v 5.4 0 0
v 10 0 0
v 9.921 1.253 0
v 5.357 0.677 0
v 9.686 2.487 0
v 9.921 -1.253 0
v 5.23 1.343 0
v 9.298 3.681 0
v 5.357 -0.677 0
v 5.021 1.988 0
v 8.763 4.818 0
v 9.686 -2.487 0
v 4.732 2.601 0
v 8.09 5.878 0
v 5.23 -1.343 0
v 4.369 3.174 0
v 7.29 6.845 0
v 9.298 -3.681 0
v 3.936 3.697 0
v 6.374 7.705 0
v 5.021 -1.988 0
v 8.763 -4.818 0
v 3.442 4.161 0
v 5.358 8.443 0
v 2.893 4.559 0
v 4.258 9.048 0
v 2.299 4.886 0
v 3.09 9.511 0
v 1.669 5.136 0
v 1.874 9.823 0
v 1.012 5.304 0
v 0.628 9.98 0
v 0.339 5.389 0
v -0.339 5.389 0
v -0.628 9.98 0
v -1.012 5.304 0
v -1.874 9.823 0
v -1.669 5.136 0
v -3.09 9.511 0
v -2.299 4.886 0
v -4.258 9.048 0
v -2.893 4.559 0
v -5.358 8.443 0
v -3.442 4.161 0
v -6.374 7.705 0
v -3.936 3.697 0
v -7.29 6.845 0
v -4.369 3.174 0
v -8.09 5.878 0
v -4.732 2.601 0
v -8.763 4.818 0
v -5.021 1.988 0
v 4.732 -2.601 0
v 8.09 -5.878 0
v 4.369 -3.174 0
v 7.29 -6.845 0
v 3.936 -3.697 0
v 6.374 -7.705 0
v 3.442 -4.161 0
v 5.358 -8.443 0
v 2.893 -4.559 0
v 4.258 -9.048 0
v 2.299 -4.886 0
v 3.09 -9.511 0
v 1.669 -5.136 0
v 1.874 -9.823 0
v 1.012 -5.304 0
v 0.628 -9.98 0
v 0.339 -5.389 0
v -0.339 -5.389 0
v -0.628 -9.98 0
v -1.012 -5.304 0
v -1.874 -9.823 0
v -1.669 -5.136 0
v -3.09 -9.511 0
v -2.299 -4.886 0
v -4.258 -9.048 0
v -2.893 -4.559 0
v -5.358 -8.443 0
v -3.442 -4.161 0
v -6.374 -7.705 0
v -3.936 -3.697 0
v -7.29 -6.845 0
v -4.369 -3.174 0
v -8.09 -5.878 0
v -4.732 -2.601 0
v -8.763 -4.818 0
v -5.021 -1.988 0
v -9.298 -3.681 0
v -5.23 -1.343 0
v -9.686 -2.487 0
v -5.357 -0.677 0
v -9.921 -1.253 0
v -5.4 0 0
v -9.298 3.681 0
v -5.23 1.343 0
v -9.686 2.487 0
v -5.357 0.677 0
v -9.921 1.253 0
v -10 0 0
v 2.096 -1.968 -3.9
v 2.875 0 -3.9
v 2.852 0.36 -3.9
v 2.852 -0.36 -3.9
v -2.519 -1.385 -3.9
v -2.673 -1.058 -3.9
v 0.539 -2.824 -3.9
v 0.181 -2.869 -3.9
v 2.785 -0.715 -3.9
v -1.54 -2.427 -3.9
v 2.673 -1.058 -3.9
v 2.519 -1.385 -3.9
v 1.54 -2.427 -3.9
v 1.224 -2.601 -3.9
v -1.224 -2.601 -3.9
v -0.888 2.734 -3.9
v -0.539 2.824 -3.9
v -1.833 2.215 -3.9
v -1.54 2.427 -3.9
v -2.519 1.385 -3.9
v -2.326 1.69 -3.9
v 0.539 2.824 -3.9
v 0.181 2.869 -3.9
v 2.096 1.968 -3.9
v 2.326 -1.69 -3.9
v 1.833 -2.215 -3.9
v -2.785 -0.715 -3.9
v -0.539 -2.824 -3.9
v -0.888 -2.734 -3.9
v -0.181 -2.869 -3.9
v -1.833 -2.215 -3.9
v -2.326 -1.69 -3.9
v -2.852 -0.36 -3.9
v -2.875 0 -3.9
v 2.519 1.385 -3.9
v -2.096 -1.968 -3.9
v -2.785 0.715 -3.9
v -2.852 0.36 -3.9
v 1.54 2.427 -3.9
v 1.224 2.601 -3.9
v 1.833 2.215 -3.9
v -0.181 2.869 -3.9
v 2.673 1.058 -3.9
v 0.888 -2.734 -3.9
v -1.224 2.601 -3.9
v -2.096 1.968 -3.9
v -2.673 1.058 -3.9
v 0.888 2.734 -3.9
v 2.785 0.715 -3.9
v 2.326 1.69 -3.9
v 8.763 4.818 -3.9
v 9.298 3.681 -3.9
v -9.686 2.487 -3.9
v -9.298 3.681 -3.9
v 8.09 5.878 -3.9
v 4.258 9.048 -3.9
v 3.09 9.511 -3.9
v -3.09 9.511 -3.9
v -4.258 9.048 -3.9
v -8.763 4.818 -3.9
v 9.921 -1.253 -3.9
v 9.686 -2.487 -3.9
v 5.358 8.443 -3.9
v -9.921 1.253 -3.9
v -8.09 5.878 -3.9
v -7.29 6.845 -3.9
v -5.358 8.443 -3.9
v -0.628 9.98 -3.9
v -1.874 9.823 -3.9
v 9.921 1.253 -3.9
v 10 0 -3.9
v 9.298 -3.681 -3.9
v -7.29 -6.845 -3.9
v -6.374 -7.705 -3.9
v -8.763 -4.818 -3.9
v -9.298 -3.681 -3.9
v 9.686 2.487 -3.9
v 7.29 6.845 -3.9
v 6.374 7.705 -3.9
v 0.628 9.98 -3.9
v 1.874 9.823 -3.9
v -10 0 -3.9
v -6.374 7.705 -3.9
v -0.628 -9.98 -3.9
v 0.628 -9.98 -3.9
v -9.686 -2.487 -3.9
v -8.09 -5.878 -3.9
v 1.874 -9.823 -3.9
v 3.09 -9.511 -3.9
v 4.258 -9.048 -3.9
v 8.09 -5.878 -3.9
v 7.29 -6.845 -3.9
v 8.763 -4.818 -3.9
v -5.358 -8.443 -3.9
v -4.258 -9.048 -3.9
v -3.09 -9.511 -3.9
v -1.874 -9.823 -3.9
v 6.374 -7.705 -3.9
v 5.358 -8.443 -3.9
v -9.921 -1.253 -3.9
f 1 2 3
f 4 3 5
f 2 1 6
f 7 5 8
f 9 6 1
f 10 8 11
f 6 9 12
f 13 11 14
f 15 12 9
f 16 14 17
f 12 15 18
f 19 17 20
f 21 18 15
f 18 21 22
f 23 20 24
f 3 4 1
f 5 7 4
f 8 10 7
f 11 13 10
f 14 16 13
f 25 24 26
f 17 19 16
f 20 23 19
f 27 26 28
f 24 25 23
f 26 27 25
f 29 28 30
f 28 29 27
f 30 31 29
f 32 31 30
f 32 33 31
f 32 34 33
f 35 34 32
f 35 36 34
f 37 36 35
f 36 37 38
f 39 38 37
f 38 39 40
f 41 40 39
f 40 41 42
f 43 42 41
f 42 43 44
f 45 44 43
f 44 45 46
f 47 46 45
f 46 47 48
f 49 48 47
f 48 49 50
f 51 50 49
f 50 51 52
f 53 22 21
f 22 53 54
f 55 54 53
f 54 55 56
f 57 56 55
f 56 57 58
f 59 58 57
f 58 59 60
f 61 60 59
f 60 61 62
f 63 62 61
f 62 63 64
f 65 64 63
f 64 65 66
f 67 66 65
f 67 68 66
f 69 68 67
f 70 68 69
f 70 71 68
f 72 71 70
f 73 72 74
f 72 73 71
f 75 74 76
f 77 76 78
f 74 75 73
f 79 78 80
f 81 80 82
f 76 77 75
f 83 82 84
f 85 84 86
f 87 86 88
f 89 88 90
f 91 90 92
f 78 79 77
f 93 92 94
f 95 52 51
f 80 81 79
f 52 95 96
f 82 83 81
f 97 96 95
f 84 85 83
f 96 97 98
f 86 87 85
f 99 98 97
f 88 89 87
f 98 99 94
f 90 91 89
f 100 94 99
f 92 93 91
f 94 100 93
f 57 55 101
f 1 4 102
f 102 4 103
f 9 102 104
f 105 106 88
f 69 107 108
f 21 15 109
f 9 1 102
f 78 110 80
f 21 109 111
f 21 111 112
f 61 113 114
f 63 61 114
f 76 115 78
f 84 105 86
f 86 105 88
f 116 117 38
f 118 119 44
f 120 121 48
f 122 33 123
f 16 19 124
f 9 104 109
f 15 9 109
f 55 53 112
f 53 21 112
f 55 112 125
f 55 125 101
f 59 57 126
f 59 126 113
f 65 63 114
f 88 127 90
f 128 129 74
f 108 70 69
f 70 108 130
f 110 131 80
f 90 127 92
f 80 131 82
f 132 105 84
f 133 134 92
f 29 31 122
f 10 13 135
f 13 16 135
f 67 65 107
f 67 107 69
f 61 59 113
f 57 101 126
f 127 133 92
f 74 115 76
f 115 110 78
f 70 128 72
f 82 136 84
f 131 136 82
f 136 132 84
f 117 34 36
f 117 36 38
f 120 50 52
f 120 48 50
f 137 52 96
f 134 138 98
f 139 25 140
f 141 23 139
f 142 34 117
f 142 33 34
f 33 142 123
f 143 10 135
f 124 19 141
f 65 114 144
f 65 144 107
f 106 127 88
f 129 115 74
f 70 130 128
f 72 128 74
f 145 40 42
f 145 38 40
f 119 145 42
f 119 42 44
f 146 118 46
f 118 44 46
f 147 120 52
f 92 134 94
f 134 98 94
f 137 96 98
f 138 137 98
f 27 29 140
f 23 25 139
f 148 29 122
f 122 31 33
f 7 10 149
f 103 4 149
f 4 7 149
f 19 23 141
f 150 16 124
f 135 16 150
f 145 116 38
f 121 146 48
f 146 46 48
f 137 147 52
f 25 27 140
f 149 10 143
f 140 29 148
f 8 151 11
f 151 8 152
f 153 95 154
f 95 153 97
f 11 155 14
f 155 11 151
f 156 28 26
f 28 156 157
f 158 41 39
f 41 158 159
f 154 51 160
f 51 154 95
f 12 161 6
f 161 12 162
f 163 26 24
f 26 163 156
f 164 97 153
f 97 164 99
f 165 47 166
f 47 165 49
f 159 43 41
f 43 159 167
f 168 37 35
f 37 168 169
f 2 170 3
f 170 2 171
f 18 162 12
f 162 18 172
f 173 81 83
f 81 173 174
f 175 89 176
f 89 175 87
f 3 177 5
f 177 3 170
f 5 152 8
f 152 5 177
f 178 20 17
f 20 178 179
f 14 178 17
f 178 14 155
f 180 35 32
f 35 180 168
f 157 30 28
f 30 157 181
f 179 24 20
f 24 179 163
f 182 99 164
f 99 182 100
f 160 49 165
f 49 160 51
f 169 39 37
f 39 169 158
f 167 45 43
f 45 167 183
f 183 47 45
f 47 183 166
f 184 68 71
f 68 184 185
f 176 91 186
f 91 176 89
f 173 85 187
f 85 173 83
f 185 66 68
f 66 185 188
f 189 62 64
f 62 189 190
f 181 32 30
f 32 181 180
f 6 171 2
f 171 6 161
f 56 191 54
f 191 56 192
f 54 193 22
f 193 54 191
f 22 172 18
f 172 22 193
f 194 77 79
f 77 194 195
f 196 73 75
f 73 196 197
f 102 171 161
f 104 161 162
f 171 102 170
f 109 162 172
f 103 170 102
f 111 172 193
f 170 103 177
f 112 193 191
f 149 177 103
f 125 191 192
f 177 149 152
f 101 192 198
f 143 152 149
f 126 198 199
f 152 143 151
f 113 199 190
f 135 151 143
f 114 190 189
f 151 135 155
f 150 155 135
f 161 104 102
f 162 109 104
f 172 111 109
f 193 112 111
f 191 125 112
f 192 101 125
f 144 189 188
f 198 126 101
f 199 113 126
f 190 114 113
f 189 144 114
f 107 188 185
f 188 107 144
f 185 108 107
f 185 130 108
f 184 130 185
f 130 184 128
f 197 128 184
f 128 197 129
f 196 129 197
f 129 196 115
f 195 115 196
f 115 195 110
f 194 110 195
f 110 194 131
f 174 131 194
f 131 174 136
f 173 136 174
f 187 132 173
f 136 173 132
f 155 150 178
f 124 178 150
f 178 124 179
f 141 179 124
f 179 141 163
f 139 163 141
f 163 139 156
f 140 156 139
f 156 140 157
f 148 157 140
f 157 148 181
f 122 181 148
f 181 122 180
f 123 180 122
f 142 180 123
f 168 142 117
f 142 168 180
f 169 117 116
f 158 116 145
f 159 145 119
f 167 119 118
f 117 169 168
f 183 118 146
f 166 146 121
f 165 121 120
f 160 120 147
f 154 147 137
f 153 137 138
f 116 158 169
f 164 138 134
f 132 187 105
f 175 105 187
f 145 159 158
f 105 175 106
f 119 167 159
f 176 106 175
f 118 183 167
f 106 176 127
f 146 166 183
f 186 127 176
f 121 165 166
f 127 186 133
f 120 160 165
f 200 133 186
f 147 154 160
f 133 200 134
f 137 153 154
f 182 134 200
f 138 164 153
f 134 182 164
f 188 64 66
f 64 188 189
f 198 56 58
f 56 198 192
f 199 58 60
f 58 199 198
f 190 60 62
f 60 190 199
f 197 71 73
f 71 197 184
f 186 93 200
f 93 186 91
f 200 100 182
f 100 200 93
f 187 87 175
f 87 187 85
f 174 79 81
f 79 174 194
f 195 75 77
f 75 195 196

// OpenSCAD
$fn = 50;


difference() {
	union() {
		translate(v = [0, 0, -3.9000000000]) {
			cylinder(h = 3.9000000000, r = 10.0000000000);
		}
	}
	union() {
		translate(v = [0, 0, 0]) {
			rotate(a = [0, 0, 0]) {
				difference() {
					union() {
						translate(v = [0, 0, -6.9000000000]) {
							cylinder(h = 6.9000000000, r = 2.6000000000);
						}
						translate(v = [0, 0, -3.9000000000]) {
							cylinder(h = 3.9000000000, r1 = 2.8750000000, r2 = 5.4000000000);
						}
						translate(v = [0, 0, -6.9000000000]) {
							cylinder(h = 6.9000000000, r = 2.8750000000);
						}
						translate(v = [0, 0, -6.9000000000]) {
							cylinder(h = 6.9000000000, r = 2.6000000000);
						}
					}
					union();
				}
			}
		}
	}
}
